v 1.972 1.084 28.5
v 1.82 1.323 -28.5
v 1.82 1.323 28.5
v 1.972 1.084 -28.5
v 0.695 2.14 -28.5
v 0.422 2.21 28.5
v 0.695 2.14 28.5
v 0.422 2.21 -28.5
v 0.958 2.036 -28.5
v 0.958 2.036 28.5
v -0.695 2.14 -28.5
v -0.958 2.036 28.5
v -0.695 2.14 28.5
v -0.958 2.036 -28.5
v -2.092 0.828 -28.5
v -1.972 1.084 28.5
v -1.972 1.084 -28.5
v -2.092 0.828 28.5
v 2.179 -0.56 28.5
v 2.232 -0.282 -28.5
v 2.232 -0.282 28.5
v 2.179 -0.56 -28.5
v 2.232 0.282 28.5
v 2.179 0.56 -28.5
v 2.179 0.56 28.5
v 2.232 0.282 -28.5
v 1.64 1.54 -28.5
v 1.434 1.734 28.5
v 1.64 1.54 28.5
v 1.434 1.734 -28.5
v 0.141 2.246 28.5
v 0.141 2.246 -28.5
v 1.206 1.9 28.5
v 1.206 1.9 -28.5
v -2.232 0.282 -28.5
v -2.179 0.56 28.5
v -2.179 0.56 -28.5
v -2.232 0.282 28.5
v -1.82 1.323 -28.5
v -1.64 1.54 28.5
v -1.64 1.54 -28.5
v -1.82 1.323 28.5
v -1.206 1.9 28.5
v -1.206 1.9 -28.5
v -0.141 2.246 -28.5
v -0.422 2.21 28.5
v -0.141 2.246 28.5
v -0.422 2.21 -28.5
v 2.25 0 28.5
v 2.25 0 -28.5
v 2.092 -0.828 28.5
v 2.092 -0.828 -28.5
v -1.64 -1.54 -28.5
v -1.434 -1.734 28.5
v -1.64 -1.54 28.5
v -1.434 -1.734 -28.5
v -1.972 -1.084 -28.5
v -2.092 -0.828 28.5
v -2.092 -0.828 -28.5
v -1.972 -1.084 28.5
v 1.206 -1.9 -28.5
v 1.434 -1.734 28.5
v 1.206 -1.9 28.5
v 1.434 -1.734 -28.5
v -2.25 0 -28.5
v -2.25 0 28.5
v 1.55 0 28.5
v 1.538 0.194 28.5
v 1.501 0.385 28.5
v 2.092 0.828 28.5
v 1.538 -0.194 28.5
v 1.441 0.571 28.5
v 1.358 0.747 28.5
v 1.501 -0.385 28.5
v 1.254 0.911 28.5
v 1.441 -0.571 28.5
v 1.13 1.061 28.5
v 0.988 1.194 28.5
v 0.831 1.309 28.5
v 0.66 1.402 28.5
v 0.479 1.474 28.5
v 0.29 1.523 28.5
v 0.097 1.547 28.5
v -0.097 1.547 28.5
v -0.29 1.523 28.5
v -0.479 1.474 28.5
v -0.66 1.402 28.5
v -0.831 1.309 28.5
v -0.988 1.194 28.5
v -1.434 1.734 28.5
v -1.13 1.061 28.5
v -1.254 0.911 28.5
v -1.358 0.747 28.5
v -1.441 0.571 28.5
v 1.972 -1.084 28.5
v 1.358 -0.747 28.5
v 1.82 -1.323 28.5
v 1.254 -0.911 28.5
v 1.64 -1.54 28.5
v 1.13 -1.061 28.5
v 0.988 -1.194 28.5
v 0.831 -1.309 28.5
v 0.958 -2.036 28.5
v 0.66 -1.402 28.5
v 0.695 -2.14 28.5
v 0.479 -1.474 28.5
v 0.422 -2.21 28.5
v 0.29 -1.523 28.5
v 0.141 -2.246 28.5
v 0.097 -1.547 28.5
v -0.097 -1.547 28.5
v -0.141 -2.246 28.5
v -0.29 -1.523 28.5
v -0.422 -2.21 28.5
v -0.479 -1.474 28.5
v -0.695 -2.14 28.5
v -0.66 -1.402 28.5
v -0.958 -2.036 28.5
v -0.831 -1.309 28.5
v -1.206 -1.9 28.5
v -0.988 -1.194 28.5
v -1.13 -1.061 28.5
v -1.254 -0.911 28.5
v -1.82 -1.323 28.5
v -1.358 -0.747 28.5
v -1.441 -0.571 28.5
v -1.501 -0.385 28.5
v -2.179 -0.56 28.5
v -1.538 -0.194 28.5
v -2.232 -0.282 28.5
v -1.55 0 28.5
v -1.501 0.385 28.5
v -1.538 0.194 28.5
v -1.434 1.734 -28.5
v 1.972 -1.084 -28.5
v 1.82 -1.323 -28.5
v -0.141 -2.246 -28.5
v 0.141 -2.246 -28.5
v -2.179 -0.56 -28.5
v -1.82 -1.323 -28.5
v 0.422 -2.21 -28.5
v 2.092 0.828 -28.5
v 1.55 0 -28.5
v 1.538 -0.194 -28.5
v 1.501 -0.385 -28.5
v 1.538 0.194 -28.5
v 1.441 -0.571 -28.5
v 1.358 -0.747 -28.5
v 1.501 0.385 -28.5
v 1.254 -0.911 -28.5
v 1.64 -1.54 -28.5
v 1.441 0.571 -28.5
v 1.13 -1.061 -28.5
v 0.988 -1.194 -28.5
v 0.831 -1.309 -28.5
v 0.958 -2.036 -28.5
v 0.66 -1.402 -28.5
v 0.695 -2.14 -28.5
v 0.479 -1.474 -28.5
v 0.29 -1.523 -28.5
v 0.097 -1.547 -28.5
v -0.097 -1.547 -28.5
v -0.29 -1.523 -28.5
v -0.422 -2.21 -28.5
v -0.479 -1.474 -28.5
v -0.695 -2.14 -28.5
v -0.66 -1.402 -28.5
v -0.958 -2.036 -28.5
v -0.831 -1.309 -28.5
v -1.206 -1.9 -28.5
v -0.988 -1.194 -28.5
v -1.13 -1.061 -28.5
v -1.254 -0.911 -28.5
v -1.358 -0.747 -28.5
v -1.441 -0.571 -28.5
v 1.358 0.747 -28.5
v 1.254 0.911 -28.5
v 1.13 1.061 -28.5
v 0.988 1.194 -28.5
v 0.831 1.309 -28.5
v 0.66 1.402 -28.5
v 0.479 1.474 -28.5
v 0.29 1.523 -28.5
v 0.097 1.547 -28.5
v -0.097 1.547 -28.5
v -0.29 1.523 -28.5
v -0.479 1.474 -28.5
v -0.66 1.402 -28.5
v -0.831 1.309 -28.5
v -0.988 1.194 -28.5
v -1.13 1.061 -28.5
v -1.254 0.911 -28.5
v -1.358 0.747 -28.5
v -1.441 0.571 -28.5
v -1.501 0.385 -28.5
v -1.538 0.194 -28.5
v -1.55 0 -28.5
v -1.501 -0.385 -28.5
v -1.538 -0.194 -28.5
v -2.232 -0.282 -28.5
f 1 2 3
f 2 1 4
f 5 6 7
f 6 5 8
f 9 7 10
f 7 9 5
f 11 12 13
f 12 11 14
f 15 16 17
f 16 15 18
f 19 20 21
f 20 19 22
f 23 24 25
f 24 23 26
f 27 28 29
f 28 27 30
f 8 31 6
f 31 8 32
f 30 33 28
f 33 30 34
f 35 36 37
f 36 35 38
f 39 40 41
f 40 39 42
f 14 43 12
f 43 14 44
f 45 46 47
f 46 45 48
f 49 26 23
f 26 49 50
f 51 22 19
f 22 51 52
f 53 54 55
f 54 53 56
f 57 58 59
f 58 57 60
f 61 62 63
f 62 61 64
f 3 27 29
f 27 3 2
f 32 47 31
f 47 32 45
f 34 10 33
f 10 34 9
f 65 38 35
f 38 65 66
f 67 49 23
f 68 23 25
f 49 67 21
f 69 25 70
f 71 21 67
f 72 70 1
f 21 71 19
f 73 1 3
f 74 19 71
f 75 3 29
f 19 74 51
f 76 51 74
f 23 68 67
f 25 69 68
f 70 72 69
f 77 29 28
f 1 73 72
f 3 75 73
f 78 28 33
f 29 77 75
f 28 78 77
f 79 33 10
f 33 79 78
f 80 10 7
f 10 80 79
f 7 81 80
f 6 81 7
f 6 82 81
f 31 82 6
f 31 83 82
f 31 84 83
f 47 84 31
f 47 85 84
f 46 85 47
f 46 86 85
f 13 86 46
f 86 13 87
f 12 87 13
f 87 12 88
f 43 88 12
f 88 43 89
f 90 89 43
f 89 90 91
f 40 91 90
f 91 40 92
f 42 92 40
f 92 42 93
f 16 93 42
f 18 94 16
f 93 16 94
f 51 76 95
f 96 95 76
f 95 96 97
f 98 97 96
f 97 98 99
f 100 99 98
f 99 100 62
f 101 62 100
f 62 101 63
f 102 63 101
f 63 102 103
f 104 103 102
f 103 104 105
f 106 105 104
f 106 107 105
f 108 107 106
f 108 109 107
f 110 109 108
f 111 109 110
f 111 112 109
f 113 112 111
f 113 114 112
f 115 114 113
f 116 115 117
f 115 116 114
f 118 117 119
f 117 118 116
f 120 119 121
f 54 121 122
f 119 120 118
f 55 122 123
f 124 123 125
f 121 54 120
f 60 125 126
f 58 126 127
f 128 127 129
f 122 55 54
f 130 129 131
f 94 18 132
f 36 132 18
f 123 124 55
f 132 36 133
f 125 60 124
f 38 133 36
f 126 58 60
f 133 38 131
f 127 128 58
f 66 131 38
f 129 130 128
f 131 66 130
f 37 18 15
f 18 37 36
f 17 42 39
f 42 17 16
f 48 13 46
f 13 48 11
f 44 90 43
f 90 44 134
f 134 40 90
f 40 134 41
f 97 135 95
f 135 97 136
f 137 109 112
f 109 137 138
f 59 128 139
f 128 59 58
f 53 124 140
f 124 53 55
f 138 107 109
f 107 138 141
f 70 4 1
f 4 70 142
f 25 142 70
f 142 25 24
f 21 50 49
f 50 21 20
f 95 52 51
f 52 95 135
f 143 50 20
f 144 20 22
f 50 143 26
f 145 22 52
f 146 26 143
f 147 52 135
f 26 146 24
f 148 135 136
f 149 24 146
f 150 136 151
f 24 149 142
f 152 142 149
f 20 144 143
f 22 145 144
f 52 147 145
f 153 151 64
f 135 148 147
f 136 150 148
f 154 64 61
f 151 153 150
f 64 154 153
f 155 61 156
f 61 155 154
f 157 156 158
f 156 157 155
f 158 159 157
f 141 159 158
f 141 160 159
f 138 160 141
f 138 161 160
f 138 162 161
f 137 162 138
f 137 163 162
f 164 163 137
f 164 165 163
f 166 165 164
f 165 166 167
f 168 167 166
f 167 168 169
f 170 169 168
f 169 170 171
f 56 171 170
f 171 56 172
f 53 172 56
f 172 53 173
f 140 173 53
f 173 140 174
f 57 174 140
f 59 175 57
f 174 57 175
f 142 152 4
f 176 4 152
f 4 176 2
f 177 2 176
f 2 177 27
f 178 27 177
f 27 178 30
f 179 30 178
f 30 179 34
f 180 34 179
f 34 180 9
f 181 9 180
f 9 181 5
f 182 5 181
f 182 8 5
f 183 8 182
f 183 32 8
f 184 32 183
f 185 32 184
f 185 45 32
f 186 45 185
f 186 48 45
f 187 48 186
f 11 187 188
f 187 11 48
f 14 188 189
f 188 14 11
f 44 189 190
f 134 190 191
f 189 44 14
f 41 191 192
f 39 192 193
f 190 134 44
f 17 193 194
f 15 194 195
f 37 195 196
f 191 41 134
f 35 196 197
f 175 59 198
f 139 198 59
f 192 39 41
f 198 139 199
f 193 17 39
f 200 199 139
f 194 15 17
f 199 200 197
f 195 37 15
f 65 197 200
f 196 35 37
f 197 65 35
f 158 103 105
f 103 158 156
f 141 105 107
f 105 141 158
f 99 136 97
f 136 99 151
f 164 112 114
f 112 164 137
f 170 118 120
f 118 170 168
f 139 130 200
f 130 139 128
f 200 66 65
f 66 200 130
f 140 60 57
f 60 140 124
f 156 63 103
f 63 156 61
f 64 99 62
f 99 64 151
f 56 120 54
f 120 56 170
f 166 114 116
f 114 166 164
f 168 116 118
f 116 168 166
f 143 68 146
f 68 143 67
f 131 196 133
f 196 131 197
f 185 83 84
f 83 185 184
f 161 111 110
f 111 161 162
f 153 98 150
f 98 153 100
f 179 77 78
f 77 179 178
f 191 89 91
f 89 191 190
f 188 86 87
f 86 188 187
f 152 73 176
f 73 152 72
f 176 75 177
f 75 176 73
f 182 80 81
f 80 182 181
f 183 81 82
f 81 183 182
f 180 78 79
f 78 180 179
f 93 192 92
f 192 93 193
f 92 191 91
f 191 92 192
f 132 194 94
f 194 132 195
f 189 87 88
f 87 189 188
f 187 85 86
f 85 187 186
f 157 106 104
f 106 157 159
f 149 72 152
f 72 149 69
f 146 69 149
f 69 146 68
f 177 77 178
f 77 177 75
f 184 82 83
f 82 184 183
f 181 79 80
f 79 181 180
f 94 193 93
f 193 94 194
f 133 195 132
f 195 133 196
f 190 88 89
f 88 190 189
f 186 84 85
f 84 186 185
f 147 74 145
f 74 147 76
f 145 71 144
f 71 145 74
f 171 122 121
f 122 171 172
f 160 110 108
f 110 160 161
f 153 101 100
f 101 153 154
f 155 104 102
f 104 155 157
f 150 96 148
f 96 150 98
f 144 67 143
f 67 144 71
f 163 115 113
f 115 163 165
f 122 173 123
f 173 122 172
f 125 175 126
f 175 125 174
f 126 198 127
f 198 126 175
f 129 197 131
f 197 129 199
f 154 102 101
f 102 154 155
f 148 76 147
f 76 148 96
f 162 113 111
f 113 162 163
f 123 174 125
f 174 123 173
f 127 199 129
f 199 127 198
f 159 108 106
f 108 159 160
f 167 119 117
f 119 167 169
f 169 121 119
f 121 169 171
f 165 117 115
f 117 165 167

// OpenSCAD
$fn = 50;


difference() {
	union() {
		translate(v = [0, 0, -28.5000000000]) {
			cylinder(h = 57, r = 2.2500000000);
		}
	}
	union() {
		translate(v = [0, 0, -100.0000000000]) {
			cylinder(h = 200, r = 1.5500000000);
		}
	}
}
